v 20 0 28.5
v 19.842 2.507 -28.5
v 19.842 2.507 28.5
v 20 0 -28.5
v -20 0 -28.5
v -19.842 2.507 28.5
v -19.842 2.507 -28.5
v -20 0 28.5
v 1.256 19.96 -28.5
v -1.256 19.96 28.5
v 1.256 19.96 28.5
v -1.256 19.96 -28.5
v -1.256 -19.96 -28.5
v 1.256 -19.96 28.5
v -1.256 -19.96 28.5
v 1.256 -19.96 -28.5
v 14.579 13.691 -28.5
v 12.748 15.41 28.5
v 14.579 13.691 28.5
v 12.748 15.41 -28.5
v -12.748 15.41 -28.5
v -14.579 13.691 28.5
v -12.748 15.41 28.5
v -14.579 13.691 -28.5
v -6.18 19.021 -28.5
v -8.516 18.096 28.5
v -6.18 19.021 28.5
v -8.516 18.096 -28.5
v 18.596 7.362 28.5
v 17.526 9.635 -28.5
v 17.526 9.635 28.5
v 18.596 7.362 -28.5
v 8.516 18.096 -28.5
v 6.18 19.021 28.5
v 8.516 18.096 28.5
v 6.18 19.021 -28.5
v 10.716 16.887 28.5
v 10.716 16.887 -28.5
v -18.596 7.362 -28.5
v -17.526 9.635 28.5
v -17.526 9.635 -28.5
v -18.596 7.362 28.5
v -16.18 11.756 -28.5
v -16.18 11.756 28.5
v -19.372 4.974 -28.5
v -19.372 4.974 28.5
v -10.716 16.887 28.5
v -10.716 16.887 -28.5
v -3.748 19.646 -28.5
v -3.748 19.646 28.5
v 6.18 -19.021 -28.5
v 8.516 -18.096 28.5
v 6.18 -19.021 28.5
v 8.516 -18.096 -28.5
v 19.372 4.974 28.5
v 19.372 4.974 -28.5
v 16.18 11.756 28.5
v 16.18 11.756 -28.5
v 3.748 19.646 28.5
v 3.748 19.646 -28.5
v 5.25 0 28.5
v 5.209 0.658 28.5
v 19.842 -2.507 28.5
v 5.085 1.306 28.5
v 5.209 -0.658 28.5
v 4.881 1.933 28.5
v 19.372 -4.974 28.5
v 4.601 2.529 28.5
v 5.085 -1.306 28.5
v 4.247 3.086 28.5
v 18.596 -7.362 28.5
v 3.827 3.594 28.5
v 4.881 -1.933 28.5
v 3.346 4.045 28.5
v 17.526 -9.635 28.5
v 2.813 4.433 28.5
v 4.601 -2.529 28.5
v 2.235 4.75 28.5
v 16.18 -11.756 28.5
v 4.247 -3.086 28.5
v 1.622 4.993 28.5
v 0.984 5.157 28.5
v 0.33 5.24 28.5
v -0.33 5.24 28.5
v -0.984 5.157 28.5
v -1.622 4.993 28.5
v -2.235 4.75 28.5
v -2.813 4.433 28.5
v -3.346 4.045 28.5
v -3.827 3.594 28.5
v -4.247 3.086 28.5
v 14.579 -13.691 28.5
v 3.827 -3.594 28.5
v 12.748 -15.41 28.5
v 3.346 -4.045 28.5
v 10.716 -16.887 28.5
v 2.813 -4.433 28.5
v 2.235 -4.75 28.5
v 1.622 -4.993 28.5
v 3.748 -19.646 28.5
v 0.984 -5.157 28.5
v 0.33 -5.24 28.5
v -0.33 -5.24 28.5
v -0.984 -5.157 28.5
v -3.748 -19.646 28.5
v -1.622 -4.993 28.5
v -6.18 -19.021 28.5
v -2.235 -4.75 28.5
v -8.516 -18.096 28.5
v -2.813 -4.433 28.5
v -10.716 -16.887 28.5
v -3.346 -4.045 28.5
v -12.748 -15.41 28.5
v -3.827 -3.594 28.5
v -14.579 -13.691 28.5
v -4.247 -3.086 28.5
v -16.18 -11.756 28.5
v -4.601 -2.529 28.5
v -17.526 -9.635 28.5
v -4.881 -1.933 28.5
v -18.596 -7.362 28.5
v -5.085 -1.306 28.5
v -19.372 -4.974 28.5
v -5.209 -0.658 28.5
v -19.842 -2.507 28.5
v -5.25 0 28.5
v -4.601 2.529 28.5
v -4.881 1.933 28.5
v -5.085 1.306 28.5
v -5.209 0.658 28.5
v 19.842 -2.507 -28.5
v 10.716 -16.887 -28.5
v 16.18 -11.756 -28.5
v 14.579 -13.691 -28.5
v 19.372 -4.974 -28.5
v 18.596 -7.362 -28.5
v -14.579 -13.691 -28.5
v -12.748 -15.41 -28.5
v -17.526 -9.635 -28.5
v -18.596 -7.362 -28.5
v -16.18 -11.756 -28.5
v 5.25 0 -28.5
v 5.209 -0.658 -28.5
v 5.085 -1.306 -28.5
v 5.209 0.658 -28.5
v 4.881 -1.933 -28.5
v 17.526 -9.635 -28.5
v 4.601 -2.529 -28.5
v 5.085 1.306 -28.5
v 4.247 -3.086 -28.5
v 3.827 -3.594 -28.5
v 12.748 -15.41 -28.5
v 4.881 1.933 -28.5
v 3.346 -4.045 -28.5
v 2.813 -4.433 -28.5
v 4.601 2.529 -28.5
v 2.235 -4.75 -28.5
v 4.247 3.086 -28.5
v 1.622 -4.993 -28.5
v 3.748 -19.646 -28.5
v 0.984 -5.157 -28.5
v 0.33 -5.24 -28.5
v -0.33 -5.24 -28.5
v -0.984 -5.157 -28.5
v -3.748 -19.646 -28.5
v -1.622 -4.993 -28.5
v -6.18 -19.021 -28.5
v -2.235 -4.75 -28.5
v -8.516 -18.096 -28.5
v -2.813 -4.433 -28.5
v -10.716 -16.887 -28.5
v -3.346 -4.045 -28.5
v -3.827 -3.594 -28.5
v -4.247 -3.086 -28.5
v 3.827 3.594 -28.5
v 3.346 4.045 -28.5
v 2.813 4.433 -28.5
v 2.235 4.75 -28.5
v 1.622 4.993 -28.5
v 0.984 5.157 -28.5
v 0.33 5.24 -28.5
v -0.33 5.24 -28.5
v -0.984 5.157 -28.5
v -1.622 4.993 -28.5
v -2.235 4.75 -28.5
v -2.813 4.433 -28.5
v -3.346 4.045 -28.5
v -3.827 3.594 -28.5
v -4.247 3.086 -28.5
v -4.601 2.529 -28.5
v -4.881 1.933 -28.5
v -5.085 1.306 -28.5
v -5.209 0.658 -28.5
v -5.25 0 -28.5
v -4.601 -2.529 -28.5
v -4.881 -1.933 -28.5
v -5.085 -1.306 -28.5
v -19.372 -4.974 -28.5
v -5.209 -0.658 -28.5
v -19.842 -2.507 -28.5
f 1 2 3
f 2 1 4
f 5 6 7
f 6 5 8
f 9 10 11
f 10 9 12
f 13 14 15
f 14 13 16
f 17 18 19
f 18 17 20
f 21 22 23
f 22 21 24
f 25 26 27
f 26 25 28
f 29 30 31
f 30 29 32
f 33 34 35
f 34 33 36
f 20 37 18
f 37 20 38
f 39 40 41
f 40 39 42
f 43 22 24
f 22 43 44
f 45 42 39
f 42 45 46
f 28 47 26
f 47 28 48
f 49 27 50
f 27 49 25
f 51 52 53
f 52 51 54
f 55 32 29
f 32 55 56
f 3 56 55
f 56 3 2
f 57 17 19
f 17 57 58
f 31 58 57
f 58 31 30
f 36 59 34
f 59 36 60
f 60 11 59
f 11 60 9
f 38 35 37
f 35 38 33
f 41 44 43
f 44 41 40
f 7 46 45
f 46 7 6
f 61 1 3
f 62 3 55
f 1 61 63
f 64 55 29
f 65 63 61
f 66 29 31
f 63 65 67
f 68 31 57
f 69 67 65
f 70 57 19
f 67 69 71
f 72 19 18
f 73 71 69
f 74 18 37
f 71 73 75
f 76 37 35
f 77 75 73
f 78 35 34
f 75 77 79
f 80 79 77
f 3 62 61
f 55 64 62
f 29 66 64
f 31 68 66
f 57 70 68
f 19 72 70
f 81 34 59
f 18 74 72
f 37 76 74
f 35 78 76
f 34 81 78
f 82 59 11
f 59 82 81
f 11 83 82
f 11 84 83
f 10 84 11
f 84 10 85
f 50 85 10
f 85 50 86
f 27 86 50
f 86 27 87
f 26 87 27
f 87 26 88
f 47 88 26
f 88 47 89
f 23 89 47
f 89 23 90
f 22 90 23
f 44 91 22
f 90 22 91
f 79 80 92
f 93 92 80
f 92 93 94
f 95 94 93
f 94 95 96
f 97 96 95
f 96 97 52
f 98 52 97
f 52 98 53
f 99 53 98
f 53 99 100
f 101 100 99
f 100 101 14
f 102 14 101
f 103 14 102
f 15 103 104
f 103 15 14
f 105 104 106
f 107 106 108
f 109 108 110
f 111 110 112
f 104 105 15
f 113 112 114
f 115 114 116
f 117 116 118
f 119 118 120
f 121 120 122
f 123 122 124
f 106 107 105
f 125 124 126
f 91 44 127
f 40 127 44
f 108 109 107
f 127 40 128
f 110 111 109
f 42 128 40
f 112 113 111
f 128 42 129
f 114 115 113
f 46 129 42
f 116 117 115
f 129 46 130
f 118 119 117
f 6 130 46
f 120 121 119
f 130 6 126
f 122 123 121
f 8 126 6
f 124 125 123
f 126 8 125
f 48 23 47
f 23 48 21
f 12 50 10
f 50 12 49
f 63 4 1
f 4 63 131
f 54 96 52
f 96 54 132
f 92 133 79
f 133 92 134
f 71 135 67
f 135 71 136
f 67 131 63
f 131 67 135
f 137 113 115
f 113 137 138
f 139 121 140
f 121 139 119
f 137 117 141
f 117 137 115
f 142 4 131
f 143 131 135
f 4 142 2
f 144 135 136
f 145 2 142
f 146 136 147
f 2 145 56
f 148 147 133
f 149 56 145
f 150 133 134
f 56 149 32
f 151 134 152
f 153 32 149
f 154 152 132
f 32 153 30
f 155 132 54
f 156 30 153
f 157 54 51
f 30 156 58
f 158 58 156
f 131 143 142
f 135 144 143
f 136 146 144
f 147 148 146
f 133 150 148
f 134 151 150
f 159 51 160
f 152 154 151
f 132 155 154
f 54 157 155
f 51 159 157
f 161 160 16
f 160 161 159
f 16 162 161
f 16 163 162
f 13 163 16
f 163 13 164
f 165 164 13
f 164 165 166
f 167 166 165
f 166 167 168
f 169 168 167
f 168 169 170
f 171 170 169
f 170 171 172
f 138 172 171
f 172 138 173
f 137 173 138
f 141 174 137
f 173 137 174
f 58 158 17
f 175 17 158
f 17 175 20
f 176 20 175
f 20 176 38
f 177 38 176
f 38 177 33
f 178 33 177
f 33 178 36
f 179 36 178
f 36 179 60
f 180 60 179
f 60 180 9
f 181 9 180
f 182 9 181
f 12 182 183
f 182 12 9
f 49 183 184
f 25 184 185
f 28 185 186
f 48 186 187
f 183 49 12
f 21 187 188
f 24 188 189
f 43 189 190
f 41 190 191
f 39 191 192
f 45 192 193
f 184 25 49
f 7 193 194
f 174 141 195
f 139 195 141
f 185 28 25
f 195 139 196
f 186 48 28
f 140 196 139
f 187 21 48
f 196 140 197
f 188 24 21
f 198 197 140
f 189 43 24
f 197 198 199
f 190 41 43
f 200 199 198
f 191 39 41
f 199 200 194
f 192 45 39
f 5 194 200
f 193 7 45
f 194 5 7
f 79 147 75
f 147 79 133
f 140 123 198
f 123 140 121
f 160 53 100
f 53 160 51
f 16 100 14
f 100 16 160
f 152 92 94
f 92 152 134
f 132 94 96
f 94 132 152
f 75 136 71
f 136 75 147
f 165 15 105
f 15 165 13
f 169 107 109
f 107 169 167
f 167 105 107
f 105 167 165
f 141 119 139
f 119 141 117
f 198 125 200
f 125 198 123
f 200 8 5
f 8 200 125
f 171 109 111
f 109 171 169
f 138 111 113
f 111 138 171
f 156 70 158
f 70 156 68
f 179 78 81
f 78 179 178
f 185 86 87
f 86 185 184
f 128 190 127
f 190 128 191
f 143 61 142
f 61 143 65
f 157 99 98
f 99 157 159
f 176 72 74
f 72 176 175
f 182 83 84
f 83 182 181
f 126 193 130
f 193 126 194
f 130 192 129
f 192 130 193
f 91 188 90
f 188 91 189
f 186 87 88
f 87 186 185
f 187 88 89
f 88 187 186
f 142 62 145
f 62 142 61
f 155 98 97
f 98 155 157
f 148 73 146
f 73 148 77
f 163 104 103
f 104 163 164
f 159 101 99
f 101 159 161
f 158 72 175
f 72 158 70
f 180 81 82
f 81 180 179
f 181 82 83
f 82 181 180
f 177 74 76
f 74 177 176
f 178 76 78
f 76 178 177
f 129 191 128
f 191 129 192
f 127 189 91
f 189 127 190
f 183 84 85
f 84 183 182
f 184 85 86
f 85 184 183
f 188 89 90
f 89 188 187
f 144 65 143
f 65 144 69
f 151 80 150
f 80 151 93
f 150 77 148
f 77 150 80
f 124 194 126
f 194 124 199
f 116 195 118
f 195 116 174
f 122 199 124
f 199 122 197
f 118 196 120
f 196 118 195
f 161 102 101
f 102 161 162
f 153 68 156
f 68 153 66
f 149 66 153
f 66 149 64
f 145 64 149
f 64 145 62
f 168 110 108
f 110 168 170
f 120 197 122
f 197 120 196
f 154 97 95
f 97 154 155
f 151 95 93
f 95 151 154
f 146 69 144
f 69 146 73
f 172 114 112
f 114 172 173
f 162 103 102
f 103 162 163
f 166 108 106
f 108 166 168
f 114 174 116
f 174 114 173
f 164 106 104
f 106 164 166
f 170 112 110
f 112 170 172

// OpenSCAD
$fn = 50;


difference() {
	union() {
		translate(v = [0, 0, -28.5000000000]) {
			cylinder(h = 57, r = 20.0000000000);
		}
	}
	union() {
		translate(v = [0, 0, -100.0000000000]) {
			cylinder(h = 200, r = 5.2500000000);
		}
	}
}
